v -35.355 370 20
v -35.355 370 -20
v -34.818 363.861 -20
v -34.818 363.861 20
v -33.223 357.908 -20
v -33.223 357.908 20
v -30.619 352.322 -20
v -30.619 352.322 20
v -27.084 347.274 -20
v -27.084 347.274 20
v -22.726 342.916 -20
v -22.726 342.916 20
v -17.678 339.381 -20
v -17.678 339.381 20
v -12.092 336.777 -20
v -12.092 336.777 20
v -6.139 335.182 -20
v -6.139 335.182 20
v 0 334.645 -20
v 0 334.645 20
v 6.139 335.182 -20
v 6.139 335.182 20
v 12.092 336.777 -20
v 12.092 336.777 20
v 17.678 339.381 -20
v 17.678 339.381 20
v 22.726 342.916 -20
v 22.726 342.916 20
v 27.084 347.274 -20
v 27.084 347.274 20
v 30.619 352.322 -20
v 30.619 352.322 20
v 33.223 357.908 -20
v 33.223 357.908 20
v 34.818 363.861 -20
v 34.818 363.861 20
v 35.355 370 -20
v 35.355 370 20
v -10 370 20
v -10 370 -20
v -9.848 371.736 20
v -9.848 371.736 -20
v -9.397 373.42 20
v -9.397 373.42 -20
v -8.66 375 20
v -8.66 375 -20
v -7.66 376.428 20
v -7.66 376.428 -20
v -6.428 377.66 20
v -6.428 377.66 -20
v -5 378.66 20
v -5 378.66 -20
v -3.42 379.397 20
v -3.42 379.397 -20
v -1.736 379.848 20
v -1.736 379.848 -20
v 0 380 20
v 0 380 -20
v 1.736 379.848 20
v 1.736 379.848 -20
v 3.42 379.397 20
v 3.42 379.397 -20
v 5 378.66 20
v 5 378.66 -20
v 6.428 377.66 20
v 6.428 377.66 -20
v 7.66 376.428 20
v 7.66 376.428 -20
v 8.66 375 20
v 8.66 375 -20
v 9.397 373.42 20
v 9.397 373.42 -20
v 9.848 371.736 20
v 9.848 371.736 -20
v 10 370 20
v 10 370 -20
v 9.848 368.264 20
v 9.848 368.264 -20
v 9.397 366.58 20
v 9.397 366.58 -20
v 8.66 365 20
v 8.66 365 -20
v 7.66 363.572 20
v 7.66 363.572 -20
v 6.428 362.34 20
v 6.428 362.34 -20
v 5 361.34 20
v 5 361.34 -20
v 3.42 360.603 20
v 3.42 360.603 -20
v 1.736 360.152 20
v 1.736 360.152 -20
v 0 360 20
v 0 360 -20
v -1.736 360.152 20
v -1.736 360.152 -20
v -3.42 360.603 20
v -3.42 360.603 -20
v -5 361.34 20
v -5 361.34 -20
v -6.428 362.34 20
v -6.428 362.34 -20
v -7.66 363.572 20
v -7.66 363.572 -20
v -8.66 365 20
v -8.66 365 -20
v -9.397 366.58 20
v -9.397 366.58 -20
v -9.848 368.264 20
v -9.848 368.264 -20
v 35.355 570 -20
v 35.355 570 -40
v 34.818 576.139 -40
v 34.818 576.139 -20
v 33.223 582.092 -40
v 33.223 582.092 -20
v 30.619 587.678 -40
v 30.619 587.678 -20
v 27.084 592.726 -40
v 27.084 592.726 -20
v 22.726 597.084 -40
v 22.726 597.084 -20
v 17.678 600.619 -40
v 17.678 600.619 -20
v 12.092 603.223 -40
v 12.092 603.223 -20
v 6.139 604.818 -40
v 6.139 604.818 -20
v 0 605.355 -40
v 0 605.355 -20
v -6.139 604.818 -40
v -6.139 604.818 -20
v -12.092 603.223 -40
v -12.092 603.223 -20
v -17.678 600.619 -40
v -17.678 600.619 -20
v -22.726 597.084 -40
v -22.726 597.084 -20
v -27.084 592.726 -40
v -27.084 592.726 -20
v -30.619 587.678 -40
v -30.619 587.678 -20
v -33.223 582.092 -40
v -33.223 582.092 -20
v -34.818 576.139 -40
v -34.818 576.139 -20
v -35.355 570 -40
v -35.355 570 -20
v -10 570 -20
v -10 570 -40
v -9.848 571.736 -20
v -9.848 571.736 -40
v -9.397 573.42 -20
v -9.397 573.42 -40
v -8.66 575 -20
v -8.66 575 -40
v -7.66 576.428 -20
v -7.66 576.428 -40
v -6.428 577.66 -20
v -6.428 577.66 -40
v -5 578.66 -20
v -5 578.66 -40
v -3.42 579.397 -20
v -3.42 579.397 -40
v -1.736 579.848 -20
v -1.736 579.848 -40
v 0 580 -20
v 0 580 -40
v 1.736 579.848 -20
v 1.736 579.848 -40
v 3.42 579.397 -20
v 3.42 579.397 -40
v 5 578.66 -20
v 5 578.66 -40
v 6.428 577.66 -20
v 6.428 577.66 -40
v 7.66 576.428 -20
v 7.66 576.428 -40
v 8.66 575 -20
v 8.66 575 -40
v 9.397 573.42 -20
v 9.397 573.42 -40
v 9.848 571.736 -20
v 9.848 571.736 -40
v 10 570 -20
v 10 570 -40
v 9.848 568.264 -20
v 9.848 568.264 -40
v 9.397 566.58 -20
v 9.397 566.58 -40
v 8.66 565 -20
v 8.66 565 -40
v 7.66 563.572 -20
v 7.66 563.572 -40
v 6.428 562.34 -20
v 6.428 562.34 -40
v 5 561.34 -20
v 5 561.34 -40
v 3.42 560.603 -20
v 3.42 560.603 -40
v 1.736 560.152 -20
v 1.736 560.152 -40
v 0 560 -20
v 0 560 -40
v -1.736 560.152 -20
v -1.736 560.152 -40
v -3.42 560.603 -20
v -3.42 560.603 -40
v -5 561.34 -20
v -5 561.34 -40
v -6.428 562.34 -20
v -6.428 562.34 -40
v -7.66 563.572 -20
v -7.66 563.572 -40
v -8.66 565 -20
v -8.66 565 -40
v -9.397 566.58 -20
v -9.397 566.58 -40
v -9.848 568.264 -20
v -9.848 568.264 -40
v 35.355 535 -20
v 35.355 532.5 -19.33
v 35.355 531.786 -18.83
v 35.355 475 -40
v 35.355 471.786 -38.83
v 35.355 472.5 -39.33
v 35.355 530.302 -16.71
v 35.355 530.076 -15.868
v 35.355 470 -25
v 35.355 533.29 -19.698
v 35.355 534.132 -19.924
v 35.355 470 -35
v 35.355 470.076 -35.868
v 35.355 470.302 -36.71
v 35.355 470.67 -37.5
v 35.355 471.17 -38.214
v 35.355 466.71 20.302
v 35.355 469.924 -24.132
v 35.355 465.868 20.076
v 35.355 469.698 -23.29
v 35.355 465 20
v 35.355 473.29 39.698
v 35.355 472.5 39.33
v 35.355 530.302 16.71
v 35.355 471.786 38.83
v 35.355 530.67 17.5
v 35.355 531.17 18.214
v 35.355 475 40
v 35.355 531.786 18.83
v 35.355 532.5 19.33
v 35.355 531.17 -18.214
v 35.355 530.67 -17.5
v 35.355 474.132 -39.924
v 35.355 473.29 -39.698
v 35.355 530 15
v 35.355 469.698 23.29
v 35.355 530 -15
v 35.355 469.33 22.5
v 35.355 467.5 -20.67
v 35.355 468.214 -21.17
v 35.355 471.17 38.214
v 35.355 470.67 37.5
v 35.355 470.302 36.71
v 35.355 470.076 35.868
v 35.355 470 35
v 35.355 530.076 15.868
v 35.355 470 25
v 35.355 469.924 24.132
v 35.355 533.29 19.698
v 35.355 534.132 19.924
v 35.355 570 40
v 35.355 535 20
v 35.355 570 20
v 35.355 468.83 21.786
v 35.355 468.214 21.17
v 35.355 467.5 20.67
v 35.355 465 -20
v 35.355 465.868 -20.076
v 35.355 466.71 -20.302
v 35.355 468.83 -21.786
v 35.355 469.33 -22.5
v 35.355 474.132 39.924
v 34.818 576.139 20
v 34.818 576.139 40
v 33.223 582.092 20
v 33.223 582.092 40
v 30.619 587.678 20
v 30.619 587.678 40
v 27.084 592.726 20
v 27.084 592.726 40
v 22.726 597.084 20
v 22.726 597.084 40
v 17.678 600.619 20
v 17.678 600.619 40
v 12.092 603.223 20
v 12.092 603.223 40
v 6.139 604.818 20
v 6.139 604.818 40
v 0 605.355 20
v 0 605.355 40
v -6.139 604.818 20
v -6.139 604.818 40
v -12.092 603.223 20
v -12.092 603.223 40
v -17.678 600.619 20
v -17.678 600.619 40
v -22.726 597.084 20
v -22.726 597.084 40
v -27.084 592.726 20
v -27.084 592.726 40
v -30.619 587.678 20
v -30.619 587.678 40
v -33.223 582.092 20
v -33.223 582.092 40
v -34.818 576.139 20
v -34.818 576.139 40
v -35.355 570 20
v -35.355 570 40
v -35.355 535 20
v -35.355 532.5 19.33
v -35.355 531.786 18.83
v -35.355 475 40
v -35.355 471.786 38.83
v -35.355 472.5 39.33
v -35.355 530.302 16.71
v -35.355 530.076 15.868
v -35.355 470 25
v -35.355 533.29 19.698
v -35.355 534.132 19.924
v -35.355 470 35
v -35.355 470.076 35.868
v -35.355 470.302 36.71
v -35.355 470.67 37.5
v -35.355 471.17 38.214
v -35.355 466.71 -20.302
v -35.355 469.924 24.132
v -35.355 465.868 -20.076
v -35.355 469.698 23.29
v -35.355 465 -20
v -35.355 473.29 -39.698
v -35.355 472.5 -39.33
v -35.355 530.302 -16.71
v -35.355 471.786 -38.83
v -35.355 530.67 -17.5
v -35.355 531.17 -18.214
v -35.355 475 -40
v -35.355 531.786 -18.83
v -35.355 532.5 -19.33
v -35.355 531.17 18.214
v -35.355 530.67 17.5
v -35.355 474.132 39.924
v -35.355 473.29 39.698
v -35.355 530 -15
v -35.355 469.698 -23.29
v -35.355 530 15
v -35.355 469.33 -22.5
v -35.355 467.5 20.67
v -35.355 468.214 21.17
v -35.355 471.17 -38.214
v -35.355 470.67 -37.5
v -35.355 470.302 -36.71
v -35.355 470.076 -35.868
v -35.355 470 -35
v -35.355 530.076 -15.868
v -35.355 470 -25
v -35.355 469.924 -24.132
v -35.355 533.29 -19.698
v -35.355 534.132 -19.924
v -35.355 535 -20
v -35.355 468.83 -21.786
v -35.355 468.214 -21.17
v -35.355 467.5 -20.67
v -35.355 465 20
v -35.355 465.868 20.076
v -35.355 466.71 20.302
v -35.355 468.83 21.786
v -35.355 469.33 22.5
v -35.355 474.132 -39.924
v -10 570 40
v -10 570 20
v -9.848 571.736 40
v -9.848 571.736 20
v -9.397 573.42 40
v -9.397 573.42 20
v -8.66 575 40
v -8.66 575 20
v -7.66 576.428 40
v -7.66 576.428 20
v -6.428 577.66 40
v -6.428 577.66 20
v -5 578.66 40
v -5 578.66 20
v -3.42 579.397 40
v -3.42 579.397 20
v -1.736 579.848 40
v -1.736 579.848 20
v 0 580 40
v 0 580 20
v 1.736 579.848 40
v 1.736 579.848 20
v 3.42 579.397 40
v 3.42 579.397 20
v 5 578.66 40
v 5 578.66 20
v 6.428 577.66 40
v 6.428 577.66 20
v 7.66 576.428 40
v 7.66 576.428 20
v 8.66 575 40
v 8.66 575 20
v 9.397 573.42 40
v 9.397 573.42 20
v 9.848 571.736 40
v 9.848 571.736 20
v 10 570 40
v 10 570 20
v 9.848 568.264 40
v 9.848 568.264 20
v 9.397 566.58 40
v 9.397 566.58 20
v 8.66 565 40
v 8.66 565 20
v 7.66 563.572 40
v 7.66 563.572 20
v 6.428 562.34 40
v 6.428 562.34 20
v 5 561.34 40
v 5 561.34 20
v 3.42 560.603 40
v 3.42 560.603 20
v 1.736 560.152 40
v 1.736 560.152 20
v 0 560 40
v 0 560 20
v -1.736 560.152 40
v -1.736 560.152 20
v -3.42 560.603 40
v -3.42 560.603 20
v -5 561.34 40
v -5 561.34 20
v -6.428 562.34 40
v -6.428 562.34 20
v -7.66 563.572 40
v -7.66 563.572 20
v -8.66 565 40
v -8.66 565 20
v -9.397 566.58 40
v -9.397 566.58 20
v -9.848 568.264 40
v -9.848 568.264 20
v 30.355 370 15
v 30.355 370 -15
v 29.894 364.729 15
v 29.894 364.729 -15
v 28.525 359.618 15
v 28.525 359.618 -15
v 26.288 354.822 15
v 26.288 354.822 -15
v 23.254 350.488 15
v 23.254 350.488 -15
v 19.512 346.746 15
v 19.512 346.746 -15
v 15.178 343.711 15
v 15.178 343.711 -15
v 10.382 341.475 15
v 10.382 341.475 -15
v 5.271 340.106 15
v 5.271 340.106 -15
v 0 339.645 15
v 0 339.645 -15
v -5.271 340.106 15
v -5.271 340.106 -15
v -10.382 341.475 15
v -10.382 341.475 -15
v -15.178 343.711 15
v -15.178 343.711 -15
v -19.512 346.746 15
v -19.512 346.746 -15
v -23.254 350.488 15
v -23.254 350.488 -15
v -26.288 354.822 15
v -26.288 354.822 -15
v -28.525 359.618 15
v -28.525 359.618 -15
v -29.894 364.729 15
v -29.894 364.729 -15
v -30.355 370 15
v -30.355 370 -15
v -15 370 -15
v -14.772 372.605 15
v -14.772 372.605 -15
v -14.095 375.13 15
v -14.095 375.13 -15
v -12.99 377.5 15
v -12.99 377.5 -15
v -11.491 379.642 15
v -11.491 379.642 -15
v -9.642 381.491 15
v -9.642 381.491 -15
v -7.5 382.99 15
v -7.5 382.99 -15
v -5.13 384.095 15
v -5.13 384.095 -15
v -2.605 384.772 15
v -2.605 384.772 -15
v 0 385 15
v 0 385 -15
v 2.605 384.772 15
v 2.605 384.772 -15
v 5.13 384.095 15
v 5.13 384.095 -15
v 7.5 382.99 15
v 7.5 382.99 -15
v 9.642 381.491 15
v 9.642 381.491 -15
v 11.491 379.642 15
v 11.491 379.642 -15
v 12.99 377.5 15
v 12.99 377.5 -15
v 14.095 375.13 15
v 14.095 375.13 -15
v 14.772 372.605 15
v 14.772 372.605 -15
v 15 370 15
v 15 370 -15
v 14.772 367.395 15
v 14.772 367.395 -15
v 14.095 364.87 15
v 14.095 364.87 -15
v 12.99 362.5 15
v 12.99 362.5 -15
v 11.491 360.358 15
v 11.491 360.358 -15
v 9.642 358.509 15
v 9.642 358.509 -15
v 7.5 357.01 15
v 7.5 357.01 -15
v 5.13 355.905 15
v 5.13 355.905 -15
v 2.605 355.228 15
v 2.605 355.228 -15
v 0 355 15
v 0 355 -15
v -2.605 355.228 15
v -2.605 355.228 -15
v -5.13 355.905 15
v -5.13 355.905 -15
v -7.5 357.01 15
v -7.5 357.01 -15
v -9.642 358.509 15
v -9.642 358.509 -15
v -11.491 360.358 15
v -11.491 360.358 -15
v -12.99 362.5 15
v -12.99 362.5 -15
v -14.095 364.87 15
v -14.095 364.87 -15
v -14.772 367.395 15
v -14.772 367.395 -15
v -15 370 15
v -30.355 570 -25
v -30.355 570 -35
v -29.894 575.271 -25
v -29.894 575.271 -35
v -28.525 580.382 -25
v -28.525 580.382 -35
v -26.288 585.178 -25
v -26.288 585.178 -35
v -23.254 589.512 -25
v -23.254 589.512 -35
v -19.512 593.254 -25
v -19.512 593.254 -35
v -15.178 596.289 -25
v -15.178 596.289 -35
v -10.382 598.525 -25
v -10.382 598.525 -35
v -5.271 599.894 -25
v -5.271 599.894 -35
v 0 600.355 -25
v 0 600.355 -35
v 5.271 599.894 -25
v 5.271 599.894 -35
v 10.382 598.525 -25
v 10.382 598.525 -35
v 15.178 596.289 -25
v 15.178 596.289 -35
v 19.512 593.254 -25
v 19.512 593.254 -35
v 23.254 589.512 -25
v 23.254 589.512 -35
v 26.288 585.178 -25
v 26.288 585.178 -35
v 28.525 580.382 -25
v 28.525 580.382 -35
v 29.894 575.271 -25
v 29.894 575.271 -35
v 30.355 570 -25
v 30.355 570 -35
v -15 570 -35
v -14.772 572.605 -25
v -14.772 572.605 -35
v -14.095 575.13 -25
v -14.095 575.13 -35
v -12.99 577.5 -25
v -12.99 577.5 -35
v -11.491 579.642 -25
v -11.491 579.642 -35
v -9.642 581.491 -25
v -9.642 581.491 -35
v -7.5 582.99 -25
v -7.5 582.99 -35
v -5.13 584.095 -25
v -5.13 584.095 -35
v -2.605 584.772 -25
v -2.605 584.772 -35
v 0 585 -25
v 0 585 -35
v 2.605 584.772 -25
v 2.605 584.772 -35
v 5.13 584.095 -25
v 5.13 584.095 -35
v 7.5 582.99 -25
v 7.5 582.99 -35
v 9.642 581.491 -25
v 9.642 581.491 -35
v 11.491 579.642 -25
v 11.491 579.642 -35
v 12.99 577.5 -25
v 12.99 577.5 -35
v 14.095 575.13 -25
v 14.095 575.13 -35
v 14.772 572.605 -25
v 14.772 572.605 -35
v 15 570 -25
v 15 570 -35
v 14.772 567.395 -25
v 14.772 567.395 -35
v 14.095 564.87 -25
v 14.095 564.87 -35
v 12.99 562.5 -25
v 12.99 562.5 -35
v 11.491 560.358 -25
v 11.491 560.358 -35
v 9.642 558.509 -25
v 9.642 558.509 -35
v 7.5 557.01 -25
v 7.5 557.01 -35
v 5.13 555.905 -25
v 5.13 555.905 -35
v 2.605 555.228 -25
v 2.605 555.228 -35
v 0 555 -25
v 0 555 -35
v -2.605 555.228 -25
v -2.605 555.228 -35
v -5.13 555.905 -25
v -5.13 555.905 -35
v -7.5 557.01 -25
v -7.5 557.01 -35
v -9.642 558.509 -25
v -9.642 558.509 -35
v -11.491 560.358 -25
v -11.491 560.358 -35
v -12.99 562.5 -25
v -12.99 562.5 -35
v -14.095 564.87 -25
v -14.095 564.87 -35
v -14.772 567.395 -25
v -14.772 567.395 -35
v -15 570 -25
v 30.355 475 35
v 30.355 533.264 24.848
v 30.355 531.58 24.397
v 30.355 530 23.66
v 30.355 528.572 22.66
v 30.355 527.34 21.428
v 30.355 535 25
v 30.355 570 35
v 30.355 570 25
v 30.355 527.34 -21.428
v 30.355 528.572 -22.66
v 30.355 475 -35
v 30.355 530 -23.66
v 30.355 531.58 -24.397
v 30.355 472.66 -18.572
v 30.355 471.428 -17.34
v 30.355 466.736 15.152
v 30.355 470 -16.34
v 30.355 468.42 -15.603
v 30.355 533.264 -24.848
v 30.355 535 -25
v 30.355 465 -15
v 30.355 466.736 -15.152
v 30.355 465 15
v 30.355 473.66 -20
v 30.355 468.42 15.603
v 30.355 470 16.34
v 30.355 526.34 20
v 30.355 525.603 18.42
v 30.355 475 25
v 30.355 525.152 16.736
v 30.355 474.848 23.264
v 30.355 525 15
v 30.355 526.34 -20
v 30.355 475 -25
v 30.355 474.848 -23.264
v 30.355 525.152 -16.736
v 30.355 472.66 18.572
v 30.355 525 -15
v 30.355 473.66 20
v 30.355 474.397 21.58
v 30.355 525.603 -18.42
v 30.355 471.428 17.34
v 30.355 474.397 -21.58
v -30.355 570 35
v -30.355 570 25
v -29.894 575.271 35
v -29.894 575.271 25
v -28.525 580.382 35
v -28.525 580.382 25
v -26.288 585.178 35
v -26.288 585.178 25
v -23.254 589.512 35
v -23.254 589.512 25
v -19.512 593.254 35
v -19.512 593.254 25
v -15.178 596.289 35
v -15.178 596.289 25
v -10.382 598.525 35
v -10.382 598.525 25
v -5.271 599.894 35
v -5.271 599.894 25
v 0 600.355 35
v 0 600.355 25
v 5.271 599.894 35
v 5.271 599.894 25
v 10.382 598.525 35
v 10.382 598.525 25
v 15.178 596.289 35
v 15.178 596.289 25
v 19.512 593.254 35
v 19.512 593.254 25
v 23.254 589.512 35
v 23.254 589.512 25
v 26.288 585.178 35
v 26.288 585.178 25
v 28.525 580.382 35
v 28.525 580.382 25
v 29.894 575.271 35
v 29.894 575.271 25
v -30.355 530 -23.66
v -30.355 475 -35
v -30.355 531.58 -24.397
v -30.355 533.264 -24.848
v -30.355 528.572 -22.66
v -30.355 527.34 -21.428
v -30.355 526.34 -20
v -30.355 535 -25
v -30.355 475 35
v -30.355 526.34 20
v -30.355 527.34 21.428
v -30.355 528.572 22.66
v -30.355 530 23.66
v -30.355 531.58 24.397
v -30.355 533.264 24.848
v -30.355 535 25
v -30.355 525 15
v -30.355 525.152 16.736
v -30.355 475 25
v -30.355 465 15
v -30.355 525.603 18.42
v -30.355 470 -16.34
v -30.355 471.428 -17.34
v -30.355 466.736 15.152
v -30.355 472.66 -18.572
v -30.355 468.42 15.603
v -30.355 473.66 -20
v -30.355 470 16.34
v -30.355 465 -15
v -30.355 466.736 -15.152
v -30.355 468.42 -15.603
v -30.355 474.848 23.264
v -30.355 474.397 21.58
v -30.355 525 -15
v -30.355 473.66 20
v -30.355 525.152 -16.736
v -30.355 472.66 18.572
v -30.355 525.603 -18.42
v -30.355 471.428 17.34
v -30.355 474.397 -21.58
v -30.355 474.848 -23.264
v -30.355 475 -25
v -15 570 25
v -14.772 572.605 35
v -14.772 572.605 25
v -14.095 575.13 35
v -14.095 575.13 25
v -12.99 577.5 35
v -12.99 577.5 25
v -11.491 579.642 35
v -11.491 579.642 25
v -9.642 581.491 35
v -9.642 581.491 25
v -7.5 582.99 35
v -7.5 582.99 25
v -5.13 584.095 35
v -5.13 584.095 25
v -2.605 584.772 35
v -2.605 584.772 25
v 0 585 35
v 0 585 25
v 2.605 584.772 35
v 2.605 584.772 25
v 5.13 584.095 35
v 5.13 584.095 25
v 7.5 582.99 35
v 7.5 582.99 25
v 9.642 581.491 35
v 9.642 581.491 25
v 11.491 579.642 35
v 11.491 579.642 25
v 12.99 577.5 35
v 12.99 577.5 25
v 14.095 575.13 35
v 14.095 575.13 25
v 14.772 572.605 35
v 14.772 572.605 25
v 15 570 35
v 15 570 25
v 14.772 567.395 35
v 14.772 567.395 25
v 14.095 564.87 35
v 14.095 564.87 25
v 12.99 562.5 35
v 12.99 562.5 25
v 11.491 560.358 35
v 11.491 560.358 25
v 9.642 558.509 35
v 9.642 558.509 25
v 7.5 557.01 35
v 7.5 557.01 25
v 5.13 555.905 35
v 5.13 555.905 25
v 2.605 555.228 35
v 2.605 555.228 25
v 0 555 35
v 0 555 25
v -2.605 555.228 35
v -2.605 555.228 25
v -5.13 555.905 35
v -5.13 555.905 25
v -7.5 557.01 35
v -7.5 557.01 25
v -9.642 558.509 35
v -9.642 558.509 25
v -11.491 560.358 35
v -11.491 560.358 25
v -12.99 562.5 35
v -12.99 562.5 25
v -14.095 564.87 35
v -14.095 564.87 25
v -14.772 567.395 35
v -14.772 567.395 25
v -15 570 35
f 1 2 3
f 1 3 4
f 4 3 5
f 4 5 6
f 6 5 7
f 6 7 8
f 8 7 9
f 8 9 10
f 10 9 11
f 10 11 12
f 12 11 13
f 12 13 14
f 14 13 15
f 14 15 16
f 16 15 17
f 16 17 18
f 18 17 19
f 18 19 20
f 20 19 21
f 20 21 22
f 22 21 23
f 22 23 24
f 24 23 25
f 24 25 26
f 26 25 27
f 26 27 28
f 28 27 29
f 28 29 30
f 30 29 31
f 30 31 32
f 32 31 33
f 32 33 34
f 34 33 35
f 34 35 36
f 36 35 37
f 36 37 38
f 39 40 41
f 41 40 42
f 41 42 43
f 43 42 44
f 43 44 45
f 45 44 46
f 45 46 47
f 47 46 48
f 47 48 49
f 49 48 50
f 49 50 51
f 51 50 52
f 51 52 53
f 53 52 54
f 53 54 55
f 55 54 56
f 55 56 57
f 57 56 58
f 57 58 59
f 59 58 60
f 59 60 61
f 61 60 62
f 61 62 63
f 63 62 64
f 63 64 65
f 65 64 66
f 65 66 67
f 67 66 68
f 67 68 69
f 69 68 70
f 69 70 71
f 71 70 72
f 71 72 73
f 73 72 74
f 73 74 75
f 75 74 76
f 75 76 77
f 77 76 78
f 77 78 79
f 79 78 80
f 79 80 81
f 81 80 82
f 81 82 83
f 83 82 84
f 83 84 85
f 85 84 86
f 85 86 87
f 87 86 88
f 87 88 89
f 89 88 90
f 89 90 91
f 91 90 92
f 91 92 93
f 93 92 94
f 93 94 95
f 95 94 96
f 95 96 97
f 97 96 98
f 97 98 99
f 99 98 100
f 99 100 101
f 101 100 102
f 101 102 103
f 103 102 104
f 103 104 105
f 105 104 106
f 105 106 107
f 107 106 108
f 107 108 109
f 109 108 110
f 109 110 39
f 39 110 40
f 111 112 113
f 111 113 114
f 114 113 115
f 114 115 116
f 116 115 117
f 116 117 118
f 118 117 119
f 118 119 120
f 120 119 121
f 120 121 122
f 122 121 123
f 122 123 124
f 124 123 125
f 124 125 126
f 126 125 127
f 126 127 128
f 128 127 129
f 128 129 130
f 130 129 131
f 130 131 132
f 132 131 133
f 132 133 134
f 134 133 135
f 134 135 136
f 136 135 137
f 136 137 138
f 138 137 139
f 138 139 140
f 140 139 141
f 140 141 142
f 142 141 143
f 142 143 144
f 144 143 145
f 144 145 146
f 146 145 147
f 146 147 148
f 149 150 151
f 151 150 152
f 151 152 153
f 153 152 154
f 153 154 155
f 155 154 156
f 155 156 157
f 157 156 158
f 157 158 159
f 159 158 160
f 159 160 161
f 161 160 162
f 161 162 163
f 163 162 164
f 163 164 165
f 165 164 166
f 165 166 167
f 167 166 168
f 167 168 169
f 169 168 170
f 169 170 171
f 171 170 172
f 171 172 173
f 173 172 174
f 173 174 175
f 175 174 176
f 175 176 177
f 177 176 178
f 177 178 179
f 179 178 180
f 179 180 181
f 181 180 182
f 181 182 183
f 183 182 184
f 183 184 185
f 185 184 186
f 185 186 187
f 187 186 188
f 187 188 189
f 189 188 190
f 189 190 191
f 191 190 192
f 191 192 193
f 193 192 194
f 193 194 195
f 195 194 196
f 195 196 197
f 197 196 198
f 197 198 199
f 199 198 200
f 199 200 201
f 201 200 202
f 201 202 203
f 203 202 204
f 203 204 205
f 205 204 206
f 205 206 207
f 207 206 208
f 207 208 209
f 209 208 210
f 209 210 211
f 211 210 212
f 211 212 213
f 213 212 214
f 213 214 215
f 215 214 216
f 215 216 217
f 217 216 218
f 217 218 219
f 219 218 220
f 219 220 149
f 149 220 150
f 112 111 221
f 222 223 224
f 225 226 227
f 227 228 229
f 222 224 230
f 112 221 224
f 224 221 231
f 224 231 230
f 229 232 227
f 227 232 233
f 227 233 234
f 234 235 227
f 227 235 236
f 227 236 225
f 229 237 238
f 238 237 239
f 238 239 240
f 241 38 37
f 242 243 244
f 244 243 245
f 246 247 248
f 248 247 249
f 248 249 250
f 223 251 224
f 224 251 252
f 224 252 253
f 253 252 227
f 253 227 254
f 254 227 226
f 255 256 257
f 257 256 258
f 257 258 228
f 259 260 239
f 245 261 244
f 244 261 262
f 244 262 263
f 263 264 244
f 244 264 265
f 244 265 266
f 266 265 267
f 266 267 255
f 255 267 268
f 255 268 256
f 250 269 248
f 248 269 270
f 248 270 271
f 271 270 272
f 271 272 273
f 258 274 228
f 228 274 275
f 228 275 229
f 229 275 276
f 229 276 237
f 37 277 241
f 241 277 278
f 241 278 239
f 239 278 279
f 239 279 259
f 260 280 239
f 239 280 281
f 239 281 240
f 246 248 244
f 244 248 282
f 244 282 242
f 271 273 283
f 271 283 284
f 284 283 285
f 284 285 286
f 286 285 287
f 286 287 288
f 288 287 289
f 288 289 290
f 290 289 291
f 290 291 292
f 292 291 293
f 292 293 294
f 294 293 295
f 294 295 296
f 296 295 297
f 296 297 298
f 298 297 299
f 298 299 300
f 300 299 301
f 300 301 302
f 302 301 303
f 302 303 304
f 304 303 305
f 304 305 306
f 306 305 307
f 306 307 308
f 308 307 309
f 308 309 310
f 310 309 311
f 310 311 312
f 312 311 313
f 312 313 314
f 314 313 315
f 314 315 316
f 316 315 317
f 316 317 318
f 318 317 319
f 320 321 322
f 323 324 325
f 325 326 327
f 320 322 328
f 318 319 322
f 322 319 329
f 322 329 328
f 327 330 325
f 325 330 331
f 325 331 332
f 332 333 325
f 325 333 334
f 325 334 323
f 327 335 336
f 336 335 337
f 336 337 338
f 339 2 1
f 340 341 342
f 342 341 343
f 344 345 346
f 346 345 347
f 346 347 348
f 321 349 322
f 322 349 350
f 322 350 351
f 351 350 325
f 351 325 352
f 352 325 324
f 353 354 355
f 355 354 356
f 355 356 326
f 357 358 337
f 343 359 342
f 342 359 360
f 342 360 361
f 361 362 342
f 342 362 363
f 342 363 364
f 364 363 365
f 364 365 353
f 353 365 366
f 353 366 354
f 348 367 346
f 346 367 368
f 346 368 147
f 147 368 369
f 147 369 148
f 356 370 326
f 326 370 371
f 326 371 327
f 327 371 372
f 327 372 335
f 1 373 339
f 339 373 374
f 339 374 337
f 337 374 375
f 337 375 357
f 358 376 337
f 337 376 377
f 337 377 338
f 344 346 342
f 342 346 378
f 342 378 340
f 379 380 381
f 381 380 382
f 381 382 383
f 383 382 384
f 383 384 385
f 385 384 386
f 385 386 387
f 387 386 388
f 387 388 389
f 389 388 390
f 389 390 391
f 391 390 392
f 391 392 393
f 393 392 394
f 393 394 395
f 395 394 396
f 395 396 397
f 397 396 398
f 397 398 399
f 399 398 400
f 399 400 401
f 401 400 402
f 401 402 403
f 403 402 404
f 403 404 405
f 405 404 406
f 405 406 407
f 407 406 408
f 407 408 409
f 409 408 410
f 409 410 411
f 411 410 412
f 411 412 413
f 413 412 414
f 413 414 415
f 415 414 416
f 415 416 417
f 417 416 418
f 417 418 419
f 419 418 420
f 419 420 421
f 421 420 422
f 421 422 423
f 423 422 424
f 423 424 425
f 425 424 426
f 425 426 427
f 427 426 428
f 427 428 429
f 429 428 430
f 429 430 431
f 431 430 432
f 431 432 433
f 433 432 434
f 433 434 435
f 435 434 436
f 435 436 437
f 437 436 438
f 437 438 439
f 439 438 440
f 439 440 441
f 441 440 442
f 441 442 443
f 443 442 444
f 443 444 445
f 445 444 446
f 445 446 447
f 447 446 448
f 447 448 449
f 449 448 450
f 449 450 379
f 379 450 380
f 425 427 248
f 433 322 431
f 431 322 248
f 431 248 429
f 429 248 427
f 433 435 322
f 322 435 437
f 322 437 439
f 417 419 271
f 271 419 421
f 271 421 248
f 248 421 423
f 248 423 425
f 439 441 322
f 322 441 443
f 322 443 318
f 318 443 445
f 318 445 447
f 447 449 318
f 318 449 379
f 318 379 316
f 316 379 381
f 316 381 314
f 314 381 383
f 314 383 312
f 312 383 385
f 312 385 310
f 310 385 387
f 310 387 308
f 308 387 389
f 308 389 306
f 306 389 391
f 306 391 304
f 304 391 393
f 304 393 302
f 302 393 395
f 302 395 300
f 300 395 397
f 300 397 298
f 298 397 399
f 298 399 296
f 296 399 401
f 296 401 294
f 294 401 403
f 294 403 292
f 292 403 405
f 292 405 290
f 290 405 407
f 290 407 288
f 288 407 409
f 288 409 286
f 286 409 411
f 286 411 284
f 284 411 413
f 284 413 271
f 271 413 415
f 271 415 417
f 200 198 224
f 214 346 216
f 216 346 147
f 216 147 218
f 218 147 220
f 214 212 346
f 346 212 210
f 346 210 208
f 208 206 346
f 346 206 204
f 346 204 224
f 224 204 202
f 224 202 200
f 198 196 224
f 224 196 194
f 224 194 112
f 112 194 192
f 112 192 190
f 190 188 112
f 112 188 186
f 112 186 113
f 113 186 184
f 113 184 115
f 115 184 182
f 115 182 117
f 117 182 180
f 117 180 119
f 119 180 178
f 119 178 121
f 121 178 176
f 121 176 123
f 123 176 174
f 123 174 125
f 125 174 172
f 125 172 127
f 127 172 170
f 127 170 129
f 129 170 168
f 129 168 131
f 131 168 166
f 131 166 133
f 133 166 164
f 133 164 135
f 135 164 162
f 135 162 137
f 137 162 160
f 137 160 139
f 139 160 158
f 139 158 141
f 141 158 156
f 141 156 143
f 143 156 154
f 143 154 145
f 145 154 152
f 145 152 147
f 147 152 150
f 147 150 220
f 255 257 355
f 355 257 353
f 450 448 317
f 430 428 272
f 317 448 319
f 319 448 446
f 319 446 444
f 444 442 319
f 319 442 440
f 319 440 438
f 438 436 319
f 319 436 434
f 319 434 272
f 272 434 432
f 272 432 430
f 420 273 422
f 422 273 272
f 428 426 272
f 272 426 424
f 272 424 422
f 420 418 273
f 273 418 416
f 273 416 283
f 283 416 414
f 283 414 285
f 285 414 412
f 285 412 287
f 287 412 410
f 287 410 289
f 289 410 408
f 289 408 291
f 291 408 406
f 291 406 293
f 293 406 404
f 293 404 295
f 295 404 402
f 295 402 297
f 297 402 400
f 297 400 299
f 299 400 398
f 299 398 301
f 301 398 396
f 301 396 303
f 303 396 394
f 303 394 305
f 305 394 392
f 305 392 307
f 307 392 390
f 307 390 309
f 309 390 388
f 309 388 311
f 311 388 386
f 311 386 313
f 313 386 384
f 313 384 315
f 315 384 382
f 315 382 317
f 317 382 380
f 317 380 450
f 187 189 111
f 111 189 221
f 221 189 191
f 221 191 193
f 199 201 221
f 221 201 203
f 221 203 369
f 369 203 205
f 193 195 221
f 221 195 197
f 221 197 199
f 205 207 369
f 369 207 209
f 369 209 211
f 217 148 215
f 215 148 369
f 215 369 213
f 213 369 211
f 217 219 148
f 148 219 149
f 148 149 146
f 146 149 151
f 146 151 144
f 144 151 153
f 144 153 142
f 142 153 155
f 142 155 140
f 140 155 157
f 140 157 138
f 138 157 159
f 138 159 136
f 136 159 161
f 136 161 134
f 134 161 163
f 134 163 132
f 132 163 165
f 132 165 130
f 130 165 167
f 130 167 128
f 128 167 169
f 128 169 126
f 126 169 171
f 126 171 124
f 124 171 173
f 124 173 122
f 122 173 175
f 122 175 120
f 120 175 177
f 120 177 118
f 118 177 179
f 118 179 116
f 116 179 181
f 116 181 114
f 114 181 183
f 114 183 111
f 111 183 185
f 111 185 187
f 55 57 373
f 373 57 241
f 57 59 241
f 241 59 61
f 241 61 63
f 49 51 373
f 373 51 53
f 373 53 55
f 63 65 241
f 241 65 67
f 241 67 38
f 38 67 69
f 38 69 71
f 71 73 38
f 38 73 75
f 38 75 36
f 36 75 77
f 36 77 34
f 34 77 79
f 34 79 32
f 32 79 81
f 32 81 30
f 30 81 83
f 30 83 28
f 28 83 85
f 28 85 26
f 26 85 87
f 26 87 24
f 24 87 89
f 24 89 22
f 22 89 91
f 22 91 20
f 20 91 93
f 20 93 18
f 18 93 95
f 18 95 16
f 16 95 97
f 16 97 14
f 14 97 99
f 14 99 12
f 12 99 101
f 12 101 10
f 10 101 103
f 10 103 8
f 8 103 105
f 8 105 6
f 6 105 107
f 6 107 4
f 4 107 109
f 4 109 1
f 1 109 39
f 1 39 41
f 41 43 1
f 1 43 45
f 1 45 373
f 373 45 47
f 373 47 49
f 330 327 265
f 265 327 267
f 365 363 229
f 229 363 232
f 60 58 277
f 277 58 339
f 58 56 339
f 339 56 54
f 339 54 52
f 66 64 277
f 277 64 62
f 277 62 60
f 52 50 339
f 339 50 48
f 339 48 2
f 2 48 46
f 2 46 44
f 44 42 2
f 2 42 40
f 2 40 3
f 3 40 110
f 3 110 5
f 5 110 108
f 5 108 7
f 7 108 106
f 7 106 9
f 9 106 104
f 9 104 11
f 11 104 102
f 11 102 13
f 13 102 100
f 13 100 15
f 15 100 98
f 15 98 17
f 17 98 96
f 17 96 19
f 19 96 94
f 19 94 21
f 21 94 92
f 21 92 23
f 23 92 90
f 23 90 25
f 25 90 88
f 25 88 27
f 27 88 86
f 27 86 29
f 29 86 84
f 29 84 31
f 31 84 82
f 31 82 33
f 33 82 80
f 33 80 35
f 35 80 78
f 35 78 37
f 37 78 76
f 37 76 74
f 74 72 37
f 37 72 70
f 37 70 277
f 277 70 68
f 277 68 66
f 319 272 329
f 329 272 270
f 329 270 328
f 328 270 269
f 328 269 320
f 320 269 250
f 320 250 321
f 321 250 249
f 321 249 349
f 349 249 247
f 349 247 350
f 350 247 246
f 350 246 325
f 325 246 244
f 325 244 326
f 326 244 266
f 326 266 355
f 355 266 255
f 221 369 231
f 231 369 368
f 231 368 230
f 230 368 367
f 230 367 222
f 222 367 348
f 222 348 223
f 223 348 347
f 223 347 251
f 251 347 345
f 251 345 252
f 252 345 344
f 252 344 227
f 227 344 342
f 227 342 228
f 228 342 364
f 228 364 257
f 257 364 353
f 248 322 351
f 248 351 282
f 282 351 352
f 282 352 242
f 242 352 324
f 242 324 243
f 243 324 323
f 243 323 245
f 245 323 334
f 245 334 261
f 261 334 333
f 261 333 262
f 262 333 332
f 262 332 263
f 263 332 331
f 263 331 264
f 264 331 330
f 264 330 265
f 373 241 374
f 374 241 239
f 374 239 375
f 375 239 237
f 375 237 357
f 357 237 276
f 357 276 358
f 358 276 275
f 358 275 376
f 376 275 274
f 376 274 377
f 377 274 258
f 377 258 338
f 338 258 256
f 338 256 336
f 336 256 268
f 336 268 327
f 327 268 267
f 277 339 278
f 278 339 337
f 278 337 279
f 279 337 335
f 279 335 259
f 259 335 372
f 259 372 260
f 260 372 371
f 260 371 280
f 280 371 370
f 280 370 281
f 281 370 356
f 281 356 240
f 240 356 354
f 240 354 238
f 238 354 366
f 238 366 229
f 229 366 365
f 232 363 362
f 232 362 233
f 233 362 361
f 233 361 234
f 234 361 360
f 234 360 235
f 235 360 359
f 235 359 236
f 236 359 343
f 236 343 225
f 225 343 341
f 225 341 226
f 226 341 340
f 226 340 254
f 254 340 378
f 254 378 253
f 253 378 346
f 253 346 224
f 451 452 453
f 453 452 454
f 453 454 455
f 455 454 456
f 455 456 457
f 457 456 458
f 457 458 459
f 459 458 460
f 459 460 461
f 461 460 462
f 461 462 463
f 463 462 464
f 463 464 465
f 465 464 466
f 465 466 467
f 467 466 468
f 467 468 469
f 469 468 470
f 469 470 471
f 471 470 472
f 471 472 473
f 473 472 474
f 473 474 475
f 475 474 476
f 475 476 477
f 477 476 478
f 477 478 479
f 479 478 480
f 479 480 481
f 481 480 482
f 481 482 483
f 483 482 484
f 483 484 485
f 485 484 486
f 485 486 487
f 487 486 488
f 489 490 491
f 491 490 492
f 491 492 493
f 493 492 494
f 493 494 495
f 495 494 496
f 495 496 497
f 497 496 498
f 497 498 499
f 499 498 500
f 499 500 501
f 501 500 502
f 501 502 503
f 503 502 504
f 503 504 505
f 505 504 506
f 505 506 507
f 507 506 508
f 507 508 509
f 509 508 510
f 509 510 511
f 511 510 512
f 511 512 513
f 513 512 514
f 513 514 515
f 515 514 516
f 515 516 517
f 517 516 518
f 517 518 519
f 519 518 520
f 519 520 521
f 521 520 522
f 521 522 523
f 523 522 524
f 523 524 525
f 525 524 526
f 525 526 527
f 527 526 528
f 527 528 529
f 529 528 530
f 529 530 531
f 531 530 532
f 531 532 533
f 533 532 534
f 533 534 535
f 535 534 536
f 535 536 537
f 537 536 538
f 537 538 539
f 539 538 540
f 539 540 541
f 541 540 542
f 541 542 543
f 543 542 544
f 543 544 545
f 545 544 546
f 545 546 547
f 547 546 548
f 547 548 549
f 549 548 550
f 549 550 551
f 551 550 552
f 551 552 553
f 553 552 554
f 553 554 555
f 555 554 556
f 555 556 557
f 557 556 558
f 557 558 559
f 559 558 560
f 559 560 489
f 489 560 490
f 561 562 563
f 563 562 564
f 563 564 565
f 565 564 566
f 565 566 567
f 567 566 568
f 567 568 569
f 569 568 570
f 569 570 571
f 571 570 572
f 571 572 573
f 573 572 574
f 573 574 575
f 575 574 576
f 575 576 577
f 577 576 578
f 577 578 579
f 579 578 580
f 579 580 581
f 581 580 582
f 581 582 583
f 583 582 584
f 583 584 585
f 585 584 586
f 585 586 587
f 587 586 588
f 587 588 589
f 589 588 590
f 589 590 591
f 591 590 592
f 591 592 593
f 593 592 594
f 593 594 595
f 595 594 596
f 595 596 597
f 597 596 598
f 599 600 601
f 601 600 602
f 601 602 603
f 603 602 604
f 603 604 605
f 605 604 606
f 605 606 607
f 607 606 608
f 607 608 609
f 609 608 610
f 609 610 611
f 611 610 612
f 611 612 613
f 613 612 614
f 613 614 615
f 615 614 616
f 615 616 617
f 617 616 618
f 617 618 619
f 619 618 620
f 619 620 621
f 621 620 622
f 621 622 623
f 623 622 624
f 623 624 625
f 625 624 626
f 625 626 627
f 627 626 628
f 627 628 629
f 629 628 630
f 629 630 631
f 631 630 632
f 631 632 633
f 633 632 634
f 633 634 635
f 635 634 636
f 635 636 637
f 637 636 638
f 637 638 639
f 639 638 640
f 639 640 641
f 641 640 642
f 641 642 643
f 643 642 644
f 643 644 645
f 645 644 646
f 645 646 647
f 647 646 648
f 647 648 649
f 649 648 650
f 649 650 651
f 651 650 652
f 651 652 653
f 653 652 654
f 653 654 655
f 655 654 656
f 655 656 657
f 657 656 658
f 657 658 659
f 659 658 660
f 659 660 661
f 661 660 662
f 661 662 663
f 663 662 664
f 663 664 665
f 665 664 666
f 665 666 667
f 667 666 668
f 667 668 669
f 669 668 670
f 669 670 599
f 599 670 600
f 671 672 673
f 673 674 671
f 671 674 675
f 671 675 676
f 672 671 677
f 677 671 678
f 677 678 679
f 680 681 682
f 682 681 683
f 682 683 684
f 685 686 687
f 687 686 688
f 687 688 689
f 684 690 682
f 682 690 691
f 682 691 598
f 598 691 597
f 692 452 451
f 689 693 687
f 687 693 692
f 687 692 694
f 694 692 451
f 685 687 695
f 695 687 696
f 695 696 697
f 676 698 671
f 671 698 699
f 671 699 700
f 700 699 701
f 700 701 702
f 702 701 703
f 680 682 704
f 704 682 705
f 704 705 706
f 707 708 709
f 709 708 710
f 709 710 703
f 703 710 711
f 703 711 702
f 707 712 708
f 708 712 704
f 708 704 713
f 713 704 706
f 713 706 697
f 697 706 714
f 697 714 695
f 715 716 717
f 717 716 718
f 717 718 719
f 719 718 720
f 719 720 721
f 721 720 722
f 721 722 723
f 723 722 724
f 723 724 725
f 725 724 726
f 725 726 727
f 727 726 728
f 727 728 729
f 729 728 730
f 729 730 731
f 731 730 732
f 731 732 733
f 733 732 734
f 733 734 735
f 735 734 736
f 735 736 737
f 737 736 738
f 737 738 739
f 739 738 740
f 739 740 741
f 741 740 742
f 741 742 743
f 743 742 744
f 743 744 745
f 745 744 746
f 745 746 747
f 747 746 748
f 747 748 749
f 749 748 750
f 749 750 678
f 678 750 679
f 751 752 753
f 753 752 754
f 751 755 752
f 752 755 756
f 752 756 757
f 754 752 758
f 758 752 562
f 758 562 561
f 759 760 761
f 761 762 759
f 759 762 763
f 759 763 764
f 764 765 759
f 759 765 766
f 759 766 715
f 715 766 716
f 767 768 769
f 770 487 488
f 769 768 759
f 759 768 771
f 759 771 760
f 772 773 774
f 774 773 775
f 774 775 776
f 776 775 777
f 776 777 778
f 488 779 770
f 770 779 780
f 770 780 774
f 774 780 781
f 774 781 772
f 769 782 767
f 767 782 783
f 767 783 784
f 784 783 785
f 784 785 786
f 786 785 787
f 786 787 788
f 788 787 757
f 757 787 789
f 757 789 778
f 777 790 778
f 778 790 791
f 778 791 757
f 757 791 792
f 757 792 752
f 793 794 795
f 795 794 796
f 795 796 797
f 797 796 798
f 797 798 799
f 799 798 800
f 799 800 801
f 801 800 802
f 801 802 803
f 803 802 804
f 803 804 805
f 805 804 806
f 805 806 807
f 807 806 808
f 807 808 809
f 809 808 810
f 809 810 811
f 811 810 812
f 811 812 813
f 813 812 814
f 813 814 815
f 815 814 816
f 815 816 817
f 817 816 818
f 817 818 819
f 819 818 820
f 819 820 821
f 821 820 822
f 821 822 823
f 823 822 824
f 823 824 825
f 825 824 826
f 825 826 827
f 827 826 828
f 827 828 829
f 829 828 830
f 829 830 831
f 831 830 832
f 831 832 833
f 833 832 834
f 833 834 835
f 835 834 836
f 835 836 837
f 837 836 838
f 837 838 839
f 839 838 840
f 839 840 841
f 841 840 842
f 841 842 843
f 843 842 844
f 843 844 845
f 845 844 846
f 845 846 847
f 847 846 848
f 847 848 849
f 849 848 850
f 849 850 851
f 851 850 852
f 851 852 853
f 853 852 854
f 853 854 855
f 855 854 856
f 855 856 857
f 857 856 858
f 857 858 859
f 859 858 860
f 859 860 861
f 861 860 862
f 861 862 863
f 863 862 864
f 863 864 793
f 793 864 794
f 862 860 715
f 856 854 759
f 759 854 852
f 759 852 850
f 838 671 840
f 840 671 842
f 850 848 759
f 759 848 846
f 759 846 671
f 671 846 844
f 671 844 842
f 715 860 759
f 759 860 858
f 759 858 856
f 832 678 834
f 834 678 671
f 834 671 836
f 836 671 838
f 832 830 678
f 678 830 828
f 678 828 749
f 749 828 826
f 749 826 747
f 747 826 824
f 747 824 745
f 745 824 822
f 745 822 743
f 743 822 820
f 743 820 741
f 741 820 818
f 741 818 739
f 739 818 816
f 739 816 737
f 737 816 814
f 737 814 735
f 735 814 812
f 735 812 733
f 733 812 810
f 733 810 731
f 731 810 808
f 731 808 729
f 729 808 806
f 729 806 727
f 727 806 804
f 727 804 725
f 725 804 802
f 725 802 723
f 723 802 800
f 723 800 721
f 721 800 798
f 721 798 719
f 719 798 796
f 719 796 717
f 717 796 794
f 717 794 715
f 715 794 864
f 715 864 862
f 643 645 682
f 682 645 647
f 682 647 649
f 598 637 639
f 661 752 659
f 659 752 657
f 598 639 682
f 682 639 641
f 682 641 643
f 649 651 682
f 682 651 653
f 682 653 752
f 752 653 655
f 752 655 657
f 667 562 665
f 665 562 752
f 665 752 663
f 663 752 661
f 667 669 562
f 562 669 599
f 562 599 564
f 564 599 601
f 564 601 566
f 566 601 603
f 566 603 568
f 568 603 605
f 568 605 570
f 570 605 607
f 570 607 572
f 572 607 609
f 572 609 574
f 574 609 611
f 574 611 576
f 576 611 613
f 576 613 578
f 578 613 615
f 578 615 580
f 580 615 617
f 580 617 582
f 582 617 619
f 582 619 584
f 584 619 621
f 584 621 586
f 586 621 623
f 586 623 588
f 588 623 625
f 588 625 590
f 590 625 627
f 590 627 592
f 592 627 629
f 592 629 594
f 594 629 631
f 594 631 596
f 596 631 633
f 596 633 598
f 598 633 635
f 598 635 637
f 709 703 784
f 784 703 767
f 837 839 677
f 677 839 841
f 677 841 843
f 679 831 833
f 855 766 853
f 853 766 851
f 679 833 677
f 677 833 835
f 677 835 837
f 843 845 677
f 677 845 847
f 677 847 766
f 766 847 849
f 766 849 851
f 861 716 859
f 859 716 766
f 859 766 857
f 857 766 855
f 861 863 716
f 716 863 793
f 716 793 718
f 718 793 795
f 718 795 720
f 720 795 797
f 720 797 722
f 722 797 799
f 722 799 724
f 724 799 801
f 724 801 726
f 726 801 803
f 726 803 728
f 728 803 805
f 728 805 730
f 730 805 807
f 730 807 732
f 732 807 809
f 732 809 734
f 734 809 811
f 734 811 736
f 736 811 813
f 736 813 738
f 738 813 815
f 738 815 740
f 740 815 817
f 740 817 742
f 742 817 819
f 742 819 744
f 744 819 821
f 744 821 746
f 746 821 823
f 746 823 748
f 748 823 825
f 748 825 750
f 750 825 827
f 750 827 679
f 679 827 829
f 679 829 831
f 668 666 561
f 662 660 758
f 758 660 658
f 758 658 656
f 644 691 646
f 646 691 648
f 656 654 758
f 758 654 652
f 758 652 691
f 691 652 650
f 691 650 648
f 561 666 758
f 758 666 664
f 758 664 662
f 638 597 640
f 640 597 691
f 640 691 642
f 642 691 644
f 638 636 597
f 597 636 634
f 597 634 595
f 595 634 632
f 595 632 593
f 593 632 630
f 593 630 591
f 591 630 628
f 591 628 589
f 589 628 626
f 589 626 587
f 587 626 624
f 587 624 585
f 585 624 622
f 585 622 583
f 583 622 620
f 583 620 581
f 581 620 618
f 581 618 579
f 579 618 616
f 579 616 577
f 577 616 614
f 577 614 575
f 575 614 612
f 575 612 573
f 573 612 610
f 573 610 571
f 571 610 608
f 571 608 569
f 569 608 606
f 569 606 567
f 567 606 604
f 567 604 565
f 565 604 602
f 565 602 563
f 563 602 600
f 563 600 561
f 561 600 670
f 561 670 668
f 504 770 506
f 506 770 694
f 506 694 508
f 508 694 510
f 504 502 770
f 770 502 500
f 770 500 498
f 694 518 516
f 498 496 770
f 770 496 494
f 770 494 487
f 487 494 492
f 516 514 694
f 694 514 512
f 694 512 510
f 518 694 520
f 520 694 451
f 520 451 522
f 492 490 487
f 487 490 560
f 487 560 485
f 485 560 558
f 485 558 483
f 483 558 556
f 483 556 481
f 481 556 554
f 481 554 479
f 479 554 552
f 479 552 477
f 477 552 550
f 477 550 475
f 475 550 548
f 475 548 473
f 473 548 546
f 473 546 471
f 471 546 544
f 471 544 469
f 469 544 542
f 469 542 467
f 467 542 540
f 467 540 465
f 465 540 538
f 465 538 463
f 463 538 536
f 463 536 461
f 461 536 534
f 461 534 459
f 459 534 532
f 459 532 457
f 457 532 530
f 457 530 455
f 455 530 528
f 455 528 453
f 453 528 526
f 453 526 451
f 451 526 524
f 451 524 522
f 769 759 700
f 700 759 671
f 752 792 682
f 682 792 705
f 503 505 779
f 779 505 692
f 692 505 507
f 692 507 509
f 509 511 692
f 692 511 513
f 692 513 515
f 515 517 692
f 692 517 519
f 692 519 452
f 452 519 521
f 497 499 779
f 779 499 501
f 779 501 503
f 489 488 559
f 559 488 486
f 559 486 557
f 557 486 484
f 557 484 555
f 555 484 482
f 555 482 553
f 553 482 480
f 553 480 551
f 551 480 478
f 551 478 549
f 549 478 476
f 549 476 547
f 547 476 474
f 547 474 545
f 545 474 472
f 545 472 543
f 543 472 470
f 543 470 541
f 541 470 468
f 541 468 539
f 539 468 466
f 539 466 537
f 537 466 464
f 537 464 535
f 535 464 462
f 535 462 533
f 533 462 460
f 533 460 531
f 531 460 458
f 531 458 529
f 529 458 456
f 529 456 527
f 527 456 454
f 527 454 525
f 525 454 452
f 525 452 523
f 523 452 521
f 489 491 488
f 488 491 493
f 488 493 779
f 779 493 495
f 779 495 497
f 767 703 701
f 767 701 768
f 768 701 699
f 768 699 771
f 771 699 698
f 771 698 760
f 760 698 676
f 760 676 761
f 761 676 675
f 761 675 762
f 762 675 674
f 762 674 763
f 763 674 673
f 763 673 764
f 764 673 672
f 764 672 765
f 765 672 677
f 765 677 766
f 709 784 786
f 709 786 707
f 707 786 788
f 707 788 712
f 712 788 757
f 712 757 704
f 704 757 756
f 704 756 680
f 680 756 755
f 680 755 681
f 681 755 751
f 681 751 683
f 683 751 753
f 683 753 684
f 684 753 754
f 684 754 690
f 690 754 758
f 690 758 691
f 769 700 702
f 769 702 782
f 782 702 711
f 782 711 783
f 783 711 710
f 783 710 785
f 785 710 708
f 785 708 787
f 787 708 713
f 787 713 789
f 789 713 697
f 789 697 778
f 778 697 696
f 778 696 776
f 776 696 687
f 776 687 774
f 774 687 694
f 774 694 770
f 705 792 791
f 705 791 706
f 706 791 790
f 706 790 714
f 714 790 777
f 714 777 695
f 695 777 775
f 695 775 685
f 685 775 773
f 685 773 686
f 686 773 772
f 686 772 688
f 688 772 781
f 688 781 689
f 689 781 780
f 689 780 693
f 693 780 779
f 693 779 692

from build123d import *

# Parameters (mm, degrees)
BOSS_EXTRUDE1_DEPTH      = 40
BOSS_EXTRUDE1_DEPTH_BACK = 40
SKETCH1_R                = 10
CUT_EXTRUDE2_DEPTH       = 20
CUT_EXTRUDE2_DEPTH_BACK  = 20
CUT_EXTRUDE4_START       = -20
CUT_EXTRUDE4_DEPTH       = 20
CUT_EXTRUDE6_START       = -20
CUT_EXTRUDE6_DEPTH       = 20
FILLET3_R                = 5
SHELL1_START             = -15
SHELL1_OUTLINE_R         = 15
SHELL1_DEPTH             = 30
SHELL1_START_2           = -35
SHELL1_2_OUTLINE_W       = 60.710678118
SHELL1_2_OUTLINE_H       = 50
SHELL1_2_DEPTH           = 70
SHELL1_3_OUTLINE_R       = 15
SHELL1_3_DEPTH           = 10
SHELL1_START_3           = 25
SHELL1_4_OUTLINE_R       = 15
SHELL1_4_DEPTH           = 10
SHELL1_START_4           = -30.355339059
SHELL1_5_DEPTH           = 60.710678118


with BuildPart() as part:
    # Sketch1 → Boss-Extrude1 (new, two sides: drawn at the far end of the back side and taken through both)
    with BuildSketch(Plane.XY.offset(-BOSS_EXTRUDE1_DEPTH_BACK)):
        with BuildLine():
            Line((-35.355339059, 370), (-35.355339059, 570))
            ThreePointArc((-35.355339059, 570), (0, 605.355339059), (35.355339059, 570))
            Line((35.355339059, 570), (35.355339059, 370))
            ThreePointArc((35.355339059, 370), (0, 334.644660941), (-35.355339059, 370))
        make_face()
        with Locations(Location((0, 370, 0), (0, 0, 180))):
            Circle(SKETCH1_R, mode=Mode.SUBTRACT)
        with Locations(Location((0, 570, 0), (0, 0, 180))):
            Circle(SKETCH1_R, mode=Mode.SUBTRACT)
    extrude(amount=BOSS_EXTRUDE1_DEPTH + BOSS_EXTRUDE1_DEPTH_BACK)

    # Sketch2 → Cut-Extrude2 (cut, two sides: drawn at the far end of the back side and taken through both)
    with BuildSketch(Plane.XY.offset(-CUT_EXTRUDE2_DEPTH_BACK)):
        with BuildLine():
            Line((-35.355339059, 530), (35.355339059, 530))
            Line((35.355339059, 530), (35.355339059, 570))
            ThreePointArc((35.355339059, 570), (0, 605.355339059), (-35.355339059, 570))
            Line((-35.355339059, 570), (-35.355339059, 530))
        make_face()
    extrude(amount=CUT_EXTRUDE2_DEPTH + CUT_EXTRUDE2_DEPTH_BACK, mode=Mode.SUBTRACT)

    # Sketch3 → Cut-Extrude4 (cut)
    with BuildSketch(Plane.XY.offset(40).offset(CUT_EXTRUDE4_START)):
        with BuildLine():
            Line((-35.355339059, 370), (-35.355339059, 470))
            Line((-35.355339059, 470), (35.355339059, 470))
            Line((35.355339059, 470), (35.355339059, 370))
            ThreePointArc((35.355339059, 370), (0, 334.644660941), (-35.355339059, 370))
        make_face()
    extrude(amount=CUT_EXTRUDE4_DEPTH, mode=Mode.SUBTRACT)

    # Sketch5 → Cut-Extrude6 (cut)
    with BuildSketch(Plane(origin=(0, 0, -40), x_dir=(-1, 0, 0), z_dir=(0, 0, -1)).offset(CUT_EXTRUDE6_START)):
        with BuildLine():
            Line((-35.355339059, 370), (-35.355339059, 470))
            Line((-35.355339059, 470), (35.355339059, 470))
            Line((35.355339059, 470), (35.355339059, 370))
            ThreePointArc((35.355339059, 370), (0, 334.644660941), (-35.355339059, 370))
        make_face()
    extrude(amount=CUT_EXTRUDE6_DEPTH, mode=Mode.SUBTRACT)

    # Fillet3
    fillet3_edges = [part.edges().sort_by_distance(p)[0] for p in [
        (0, 530, -20),
        (0, 530, 20),
        (0, 470, 40),
        (0, 470, 20),
        (0, 470, -40),
        (0, 470, -20),
    ]]
    fillet(fillet3_edges, radius=FILLET3_R)

    # Shell1: read off the stored shape, not the designer's step
    # Shell1 outline → Shell1 (cut)
    with BuildSketch(Plane.XY.offset(SHELL1_START)):
        with BuildLine():
            ThreePointArc((-30.355339059, 370), (0, 339.644660941), (30.355339059, 370))
            Line((30.355339059, 370), (30.355339059, 525))
            Line((30.355339059, 525), (-30.355339059, 525))
            Line((-30.355339059, 525), (-30.355339059, 370))
        make_face()
        with Locations((0, 370)):
            Circle(SHELL1_OUTLINE_R, mode=Mode.SUBTRACT)
    extrude(amount=SHELL1_DEPTH, mode=Mode.SUBTRACT)

    # Shell1 2 outline → Shell1 2 (cut)
    with BuildSketch(Plane.XY.offset(SHELL1_START_2)):
        with Locations((0, 500)):
            Rectangle(SHELL1_2_OUTLINE_W, SHELL1_2_OUTLINE_H)
    extrude(amount=SHELL1_2_DEPTH, mode=Mode.SUBTRACT)

    # Shell1 3 outline → Shell1 3 (cut)
    with BuildSketch(Plane.XY.offset(SHELL1_START_2)):
        with BuildLine():
            Line((-30.355339059, 525), (30.355339059, 525))
            Line((30.355339059, 525), (30.355339059, 570))
            ThreePointArc((30.355339059, 570), (0, 600.355339059), (-30.355339059, 570))
            Line((-30.355339059, 570), (-30.355339059, 525))
        make_face()
        with Locations((0, 570)):
            Circle(SHELL1_3_OUTLINE_R, mode=Mode.SUBTRACT)
    extrude(amount=SHELL1_3_DEPTH, mode=Mode.SUBTRACT)

    # Shell1 4 outline → Shell1 4 (cut)
    with BuildSketch(Plane.XY.offset(SHELL1_START_3)):
        with BuildLine():
            Line((-30.355339059, 525), (30.355339059, 525))
            Line((30.355339059, 525), (30.355339059, 570))
            ThreePointArc((30.355339059, 570), (0, 600.355339059), (-30.355339059, 570))
            Line((-30.355339059, 570), (-30.355339059, 525))
        make_face()
        with Locations((0, 570)):
            Circle(SHELL1_4_OUTLINE_R, mode=Mode.SUBTRACT)
    extrude(amount=SHELL1_4_DEPTH, mode=Mode.SUBTRACT)

    # Shell1 5 outline → Shell1 5 (cut)
    with BuildSketch(Plane.YZ.offset(SHELL1_START_4)):
        with BuildLine():
            ThreePointArc((535, -25), (527.928932188, -22.071067812), (525, -15))
            Line((525, -15), (525, -25))
            Line((525, -25), (535, -25))
        make_face()
        with BuildLine():
            ThreePointArc((525, 15), (527.928932188, 22.071067812), (535, 25))
            Line((535, 25), (525, 25))
            Line((525, 25), (525, 15))
        make_face()
        with BuildLine():
            ThreePointArc((475, 25), (472.071067812, 17.928932188), (465, 15))
            Line((465, 15), (475, 15))
            Line((475, 15), (475, 25))
        make_face()
        with BuildLine():
            Line((475, -15), (465, -15))
            ThreePointArc((465, -15), (472.071067812, -17.928932188), (475, -25))
            Line((475, -25), (475, -15))
        make_face()
    extrude(amount=SHELL1_5_DEPTH, mode=Mode.SUBTRACT)


solid = part.part
